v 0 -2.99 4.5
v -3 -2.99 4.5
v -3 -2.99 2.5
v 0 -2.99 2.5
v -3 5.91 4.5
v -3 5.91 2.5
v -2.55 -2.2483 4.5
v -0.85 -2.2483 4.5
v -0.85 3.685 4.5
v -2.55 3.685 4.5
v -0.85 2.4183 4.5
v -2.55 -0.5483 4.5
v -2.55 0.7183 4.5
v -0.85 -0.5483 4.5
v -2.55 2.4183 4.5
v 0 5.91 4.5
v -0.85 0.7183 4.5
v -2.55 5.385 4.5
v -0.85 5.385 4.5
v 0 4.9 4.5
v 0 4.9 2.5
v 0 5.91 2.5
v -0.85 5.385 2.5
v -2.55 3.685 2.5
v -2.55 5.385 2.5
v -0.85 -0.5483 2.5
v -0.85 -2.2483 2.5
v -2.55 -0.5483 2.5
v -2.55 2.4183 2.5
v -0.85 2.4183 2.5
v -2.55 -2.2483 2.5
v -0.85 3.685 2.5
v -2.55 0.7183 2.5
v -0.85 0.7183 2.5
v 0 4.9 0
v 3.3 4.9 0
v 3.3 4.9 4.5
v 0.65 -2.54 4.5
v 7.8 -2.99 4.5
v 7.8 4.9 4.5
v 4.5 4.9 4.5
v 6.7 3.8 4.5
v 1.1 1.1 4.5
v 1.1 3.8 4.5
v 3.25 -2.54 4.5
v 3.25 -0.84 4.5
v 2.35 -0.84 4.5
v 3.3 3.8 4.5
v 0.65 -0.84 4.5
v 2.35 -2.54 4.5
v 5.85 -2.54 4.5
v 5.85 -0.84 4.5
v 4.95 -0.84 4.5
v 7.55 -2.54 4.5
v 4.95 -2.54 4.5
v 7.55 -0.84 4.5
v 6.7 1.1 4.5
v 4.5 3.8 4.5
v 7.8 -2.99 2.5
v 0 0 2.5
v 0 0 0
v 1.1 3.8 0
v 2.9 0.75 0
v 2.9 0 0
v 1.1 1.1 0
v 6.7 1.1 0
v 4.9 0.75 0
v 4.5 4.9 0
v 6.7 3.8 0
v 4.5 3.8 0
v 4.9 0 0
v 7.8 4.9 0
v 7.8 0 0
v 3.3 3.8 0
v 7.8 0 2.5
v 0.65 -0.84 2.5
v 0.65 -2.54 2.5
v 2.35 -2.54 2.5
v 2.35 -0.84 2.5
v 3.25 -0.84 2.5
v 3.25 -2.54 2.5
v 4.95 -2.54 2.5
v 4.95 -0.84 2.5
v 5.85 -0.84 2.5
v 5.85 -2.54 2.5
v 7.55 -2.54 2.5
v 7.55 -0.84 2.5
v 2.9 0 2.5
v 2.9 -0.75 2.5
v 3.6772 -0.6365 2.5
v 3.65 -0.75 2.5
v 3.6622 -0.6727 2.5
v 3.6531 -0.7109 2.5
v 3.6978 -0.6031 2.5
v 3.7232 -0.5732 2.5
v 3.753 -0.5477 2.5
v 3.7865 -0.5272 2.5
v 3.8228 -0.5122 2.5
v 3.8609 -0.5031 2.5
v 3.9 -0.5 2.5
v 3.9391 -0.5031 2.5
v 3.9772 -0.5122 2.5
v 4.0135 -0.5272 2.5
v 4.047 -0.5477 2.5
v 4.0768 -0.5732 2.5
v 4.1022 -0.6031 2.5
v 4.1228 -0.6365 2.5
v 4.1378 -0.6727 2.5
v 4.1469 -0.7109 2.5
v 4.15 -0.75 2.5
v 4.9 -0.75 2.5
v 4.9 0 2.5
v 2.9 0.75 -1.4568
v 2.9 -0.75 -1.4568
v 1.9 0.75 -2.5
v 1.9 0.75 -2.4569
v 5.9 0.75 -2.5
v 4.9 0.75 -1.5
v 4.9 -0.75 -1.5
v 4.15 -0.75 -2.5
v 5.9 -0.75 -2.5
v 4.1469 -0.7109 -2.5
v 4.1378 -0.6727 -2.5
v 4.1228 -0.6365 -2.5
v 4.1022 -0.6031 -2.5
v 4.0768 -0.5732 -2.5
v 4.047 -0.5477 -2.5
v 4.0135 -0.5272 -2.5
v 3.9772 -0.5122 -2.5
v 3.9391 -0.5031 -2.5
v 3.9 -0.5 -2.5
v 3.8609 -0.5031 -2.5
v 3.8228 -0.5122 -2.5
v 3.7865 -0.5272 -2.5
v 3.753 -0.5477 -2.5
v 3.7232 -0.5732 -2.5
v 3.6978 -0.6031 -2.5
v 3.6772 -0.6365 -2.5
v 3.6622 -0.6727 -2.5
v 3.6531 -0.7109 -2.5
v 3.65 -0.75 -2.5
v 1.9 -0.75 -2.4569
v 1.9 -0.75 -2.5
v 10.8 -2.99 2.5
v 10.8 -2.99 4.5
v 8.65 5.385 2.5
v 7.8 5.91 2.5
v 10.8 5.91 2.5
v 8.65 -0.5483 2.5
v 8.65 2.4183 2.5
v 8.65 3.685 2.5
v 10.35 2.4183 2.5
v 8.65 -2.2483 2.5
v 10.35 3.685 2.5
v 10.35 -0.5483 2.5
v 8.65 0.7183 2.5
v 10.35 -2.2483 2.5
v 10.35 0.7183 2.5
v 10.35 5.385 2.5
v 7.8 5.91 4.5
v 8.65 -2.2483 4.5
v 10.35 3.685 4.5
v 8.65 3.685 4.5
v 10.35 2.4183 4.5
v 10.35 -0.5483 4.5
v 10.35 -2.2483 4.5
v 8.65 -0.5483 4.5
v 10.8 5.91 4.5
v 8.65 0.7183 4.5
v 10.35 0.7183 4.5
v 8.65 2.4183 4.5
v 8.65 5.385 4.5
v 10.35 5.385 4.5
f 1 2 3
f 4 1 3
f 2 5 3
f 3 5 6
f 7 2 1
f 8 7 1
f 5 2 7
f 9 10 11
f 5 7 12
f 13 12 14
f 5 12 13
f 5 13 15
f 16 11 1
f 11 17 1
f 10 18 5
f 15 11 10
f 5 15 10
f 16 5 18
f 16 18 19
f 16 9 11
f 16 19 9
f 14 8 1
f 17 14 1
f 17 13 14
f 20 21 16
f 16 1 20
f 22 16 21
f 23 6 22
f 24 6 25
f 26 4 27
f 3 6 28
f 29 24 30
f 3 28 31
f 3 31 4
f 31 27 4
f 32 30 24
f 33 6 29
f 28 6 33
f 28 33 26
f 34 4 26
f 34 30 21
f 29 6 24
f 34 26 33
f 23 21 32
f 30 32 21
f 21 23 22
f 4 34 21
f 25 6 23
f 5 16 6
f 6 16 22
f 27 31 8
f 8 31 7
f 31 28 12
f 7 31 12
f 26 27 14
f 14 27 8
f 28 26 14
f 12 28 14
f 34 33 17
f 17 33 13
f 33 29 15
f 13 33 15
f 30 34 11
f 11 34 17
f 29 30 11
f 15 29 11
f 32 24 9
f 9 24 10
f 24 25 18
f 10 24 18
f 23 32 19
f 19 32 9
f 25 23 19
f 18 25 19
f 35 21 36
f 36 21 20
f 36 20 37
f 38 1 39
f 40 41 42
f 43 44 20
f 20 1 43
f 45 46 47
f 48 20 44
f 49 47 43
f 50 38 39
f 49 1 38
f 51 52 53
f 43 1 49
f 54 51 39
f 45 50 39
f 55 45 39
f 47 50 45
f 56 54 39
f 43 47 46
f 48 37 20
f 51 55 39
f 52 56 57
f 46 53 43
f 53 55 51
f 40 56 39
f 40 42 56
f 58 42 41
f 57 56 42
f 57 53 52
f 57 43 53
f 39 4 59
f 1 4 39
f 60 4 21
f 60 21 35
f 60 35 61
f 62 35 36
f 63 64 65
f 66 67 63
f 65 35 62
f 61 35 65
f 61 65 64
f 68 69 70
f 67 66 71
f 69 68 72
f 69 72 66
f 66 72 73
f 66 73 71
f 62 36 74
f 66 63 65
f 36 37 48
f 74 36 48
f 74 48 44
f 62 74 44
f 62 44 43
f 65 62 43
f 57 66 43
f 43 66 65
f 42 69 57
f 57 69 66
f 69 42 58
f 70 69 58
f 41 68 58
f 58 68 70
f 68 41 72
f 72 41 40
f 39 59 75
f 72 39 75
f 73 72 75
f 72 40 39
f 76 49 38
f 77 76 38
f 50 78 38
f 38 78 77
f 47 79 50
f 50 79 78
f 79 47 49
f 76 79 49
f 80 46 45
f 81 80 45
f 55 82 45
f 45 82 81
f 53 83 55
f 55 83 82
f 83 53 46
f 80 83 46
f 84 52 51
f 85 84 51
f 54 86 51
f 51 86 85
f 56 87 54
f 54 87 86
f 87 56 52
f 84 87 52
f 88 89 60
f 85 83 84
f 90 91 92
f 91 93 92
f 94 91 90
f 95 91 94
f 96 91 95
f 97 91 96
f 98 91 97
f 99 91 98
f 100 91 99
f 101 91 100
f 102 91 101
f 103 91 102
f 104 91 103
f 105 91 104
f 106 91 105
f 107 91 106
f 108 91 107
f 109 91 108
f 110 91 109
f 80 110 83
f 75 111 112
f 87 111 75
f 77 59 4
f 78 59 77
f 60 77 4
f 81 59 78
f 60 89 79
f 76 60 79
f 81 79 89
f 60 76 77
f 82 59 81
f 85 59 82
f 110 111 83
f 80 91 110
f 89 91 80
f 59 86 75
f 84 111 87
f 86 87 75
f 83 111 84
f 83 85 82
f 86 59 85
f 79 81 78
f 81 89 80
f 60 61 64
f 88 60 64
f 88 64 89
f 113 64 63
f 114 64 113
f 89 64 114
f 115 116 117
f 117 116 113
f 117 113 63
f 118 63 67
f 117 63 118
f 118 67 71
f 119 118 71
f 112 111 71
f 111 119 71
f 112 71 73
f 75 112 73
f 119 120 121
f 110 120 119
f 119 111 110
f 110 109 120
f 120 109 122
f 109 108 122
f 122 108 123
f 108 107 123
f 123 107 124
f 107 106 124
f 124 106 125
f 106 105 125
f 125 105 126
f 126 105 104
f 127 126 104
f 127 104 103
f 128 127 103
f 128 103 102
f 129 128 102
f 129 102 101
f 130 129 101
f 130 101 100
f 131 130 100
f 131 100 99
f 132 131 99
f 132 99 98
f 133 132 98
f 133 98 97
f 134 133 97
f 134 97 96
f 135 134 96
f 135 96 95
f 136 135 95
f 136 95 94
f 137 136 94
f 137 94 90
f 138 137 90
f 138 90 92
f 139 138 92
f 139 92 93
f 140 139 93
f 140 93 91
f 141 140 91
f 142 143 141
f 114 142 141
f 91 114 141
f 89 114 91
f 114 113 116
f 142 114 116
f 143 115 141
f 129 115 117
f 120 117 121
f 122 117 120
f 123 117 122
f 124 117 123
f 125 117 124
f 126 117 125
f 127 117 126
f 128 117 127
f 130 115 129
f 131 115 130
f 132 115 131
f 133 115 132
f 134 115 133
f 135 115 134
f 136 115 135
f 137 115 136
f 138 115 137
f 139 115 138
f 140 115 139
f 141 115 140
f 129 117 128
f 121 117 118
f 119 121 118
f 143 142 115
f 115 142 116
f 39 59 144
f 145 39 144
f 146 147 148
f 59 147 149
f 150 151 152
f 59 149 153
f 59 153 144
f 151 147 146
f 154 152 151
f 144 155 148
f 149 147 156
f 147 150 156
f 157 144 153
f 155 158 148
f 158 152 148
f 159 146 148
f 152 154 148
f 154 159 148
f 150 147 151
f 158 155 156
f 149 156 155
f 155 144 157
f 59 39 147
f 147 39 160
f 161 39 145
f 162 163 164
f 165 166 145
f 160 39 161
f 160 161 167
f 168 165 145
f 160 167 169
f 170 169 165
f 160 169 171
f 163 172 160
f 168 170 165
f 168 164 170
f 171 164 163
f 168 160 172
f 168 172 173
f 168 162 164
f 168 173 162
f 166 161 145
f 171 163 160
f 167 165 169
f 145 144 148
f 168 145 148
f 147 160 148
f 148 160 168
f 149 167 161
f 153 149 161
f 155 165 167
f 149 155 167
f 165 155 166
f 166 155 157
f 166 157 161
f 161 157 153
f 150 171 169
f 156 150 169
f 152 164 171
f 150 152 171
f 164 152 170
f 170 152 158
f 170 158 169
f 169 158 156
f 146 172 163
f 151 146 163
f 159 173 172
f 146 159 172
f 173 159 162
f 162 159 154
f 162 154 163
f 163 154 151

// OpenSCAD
// Created  by Kyler Brown, 2015

// units: mm
// connector: omnetics A8366-001   NPD-14-WD-18.0-GS

// *** makerbot replicator 2 specs ***
/*
Print Technology
Fused Deposition Modeling

Layer Resolution
100 microns [0.0039 in]

Positioning Precision
XY: 11 microns [0.0004 in]
Z: 2.5 microns [0.0001 in]

Filament Diameter
1.75 mm [0.069 in]

Nozzle Diameter
0.4 mm [0.015 in] 
*/



delta = 0.01; // prevent zero length walls.

connector_x = 5.6;
connector_z = 4.5;
connector_y = 2.7;
connector_wall_dia = 1.1;
connector_cut_x = 1.2;

block_x = 4;
block_y = 1.5;
block_z = 5;

cut_angle  = 00;
guide_diameter = .5;

module connector_holder (){
  difference(){
    cube([connector_x + 2*connector_wall_dia,
	  connector_y + 2*connector_wall_dia,
	  connector_z,
	  ]);
    translate([connector_wall_dia, connector_wall_dia, -delta]){
      cube([connector_x, connector_y, connector_z+2*delta]);
    }
    //strain relief cut
    translate([connector_wall_dia + connector_x /2 - connector_cut_x/2,
	        connector_wall_dia + connector_y -delta, -delta]){
      cube([connector_cut_x, 2*connector_wall_dia + 2*delta + connector_y, connector_z+2*delta]);
    }
  }
}



module block(){
  difference(){
    cube([block_x, block_y, block_z]);
    translate([6,0,3]){
      rotate([0,cut_angle,0]){
	cube([6,15,10], center=true);
      }
    }
    translate([-2,0,3]){
      rotate([0,-cut_angle,0]){
	cube([6,15,10], center=true);
      }
    }
  }
}

leg_length = block_x;
leg_dia = 1.5;
module block_with_legs(){
  union(){
    block();
    translate([0,0,0]){
      difference(){
	cube([leg_length, leg_dia, leg_dia]);
	translate([5.0, -delta,-1]){
	  rotate([0,-45,0]){
	    cube([leg_length, leg_dia+2*delta, 10]);
	  }
	}
	translate([-6.7, -delta,-1]){
	  rotate([0,45,0]){
	    cube([leg_length, leg_dia+2*delta, 10]);
	  }
	}
      }
    }
  }

}

module guide_cut(){
  union(){
    rotate([0,0,0]){
      cylinder(h=block_z+2*delta, r=guide_diameter/2, center=false, $fn=40);

      translate([-guide_diameter/2,-block_z, 0]){
	cube([guide_diameter, block_z, block_z+delta], center=false);
      }
    }
  }
}

module block_with_guide(){
  difference(){
    block_with_legs();
    translate([block_x/2, 0, -delta]){
      guide_cut();
    }

  }

}

// guides for wires

contact_h = 2;
contact_dia = 1.7; //connector wire diameter with insulation = 0.4mm
contact_wall_depth = 3;
n_side_contacts = 3;
n_front_contacts = 3;

module contact_guide(n0, length){
  // a securing feature to connect electrodes to connector channels
  contact_spacing = (length+2*connector_wall_dia) / (n0);
  difference(){
    cube([contact_spacing*(n0), contact_wall_depth, contact_h]);
    for (i = [1:n0]){
      translate([contact_spacing/(n0+1)+contact_spacing*(i-1), contact_wall_depth-contact_dia*1.5, -delta])
	cube([contact_dia, contact_dia, contact_h+2*delta]);//*10+3*delta);
    }
  }
}


module all_contact_guides(){
  foo = (connector_x+2*connector_wall_dia)/4/4;
  translate([0, -contact_wall_depth+delta, connector_z-contact_h]){
    contact_guide(n_front_contacts, connector_x);
  }
  
  translate([-1*contact_wall_depth, -contact_wall_depth+delta, connector_z]){
    rotate([180,0,90]){
      contact_guide(n_side_contacts, connector_y+4);
    }
  }
  translate([connector_x+2*connector_wall_dia+contact_wall_depth,
	     -contact_wall_depth+delta, connector_z-contact_h]){
    rotate([0,0,90]){
      contact_guide(n_side_contacts, connector_y+4);
    }
  }
}

//connector_holder();

module full_array(){
  union(){
    connector_holder();
    translate([(connector_wall_dia + connector_x/2 - block_x/2),
	       -block_y/2,
	       -block_z/2]){
      block_with_guide();
    }
  }
}

union(){
  full_array();
  all_contact_guides();
}
